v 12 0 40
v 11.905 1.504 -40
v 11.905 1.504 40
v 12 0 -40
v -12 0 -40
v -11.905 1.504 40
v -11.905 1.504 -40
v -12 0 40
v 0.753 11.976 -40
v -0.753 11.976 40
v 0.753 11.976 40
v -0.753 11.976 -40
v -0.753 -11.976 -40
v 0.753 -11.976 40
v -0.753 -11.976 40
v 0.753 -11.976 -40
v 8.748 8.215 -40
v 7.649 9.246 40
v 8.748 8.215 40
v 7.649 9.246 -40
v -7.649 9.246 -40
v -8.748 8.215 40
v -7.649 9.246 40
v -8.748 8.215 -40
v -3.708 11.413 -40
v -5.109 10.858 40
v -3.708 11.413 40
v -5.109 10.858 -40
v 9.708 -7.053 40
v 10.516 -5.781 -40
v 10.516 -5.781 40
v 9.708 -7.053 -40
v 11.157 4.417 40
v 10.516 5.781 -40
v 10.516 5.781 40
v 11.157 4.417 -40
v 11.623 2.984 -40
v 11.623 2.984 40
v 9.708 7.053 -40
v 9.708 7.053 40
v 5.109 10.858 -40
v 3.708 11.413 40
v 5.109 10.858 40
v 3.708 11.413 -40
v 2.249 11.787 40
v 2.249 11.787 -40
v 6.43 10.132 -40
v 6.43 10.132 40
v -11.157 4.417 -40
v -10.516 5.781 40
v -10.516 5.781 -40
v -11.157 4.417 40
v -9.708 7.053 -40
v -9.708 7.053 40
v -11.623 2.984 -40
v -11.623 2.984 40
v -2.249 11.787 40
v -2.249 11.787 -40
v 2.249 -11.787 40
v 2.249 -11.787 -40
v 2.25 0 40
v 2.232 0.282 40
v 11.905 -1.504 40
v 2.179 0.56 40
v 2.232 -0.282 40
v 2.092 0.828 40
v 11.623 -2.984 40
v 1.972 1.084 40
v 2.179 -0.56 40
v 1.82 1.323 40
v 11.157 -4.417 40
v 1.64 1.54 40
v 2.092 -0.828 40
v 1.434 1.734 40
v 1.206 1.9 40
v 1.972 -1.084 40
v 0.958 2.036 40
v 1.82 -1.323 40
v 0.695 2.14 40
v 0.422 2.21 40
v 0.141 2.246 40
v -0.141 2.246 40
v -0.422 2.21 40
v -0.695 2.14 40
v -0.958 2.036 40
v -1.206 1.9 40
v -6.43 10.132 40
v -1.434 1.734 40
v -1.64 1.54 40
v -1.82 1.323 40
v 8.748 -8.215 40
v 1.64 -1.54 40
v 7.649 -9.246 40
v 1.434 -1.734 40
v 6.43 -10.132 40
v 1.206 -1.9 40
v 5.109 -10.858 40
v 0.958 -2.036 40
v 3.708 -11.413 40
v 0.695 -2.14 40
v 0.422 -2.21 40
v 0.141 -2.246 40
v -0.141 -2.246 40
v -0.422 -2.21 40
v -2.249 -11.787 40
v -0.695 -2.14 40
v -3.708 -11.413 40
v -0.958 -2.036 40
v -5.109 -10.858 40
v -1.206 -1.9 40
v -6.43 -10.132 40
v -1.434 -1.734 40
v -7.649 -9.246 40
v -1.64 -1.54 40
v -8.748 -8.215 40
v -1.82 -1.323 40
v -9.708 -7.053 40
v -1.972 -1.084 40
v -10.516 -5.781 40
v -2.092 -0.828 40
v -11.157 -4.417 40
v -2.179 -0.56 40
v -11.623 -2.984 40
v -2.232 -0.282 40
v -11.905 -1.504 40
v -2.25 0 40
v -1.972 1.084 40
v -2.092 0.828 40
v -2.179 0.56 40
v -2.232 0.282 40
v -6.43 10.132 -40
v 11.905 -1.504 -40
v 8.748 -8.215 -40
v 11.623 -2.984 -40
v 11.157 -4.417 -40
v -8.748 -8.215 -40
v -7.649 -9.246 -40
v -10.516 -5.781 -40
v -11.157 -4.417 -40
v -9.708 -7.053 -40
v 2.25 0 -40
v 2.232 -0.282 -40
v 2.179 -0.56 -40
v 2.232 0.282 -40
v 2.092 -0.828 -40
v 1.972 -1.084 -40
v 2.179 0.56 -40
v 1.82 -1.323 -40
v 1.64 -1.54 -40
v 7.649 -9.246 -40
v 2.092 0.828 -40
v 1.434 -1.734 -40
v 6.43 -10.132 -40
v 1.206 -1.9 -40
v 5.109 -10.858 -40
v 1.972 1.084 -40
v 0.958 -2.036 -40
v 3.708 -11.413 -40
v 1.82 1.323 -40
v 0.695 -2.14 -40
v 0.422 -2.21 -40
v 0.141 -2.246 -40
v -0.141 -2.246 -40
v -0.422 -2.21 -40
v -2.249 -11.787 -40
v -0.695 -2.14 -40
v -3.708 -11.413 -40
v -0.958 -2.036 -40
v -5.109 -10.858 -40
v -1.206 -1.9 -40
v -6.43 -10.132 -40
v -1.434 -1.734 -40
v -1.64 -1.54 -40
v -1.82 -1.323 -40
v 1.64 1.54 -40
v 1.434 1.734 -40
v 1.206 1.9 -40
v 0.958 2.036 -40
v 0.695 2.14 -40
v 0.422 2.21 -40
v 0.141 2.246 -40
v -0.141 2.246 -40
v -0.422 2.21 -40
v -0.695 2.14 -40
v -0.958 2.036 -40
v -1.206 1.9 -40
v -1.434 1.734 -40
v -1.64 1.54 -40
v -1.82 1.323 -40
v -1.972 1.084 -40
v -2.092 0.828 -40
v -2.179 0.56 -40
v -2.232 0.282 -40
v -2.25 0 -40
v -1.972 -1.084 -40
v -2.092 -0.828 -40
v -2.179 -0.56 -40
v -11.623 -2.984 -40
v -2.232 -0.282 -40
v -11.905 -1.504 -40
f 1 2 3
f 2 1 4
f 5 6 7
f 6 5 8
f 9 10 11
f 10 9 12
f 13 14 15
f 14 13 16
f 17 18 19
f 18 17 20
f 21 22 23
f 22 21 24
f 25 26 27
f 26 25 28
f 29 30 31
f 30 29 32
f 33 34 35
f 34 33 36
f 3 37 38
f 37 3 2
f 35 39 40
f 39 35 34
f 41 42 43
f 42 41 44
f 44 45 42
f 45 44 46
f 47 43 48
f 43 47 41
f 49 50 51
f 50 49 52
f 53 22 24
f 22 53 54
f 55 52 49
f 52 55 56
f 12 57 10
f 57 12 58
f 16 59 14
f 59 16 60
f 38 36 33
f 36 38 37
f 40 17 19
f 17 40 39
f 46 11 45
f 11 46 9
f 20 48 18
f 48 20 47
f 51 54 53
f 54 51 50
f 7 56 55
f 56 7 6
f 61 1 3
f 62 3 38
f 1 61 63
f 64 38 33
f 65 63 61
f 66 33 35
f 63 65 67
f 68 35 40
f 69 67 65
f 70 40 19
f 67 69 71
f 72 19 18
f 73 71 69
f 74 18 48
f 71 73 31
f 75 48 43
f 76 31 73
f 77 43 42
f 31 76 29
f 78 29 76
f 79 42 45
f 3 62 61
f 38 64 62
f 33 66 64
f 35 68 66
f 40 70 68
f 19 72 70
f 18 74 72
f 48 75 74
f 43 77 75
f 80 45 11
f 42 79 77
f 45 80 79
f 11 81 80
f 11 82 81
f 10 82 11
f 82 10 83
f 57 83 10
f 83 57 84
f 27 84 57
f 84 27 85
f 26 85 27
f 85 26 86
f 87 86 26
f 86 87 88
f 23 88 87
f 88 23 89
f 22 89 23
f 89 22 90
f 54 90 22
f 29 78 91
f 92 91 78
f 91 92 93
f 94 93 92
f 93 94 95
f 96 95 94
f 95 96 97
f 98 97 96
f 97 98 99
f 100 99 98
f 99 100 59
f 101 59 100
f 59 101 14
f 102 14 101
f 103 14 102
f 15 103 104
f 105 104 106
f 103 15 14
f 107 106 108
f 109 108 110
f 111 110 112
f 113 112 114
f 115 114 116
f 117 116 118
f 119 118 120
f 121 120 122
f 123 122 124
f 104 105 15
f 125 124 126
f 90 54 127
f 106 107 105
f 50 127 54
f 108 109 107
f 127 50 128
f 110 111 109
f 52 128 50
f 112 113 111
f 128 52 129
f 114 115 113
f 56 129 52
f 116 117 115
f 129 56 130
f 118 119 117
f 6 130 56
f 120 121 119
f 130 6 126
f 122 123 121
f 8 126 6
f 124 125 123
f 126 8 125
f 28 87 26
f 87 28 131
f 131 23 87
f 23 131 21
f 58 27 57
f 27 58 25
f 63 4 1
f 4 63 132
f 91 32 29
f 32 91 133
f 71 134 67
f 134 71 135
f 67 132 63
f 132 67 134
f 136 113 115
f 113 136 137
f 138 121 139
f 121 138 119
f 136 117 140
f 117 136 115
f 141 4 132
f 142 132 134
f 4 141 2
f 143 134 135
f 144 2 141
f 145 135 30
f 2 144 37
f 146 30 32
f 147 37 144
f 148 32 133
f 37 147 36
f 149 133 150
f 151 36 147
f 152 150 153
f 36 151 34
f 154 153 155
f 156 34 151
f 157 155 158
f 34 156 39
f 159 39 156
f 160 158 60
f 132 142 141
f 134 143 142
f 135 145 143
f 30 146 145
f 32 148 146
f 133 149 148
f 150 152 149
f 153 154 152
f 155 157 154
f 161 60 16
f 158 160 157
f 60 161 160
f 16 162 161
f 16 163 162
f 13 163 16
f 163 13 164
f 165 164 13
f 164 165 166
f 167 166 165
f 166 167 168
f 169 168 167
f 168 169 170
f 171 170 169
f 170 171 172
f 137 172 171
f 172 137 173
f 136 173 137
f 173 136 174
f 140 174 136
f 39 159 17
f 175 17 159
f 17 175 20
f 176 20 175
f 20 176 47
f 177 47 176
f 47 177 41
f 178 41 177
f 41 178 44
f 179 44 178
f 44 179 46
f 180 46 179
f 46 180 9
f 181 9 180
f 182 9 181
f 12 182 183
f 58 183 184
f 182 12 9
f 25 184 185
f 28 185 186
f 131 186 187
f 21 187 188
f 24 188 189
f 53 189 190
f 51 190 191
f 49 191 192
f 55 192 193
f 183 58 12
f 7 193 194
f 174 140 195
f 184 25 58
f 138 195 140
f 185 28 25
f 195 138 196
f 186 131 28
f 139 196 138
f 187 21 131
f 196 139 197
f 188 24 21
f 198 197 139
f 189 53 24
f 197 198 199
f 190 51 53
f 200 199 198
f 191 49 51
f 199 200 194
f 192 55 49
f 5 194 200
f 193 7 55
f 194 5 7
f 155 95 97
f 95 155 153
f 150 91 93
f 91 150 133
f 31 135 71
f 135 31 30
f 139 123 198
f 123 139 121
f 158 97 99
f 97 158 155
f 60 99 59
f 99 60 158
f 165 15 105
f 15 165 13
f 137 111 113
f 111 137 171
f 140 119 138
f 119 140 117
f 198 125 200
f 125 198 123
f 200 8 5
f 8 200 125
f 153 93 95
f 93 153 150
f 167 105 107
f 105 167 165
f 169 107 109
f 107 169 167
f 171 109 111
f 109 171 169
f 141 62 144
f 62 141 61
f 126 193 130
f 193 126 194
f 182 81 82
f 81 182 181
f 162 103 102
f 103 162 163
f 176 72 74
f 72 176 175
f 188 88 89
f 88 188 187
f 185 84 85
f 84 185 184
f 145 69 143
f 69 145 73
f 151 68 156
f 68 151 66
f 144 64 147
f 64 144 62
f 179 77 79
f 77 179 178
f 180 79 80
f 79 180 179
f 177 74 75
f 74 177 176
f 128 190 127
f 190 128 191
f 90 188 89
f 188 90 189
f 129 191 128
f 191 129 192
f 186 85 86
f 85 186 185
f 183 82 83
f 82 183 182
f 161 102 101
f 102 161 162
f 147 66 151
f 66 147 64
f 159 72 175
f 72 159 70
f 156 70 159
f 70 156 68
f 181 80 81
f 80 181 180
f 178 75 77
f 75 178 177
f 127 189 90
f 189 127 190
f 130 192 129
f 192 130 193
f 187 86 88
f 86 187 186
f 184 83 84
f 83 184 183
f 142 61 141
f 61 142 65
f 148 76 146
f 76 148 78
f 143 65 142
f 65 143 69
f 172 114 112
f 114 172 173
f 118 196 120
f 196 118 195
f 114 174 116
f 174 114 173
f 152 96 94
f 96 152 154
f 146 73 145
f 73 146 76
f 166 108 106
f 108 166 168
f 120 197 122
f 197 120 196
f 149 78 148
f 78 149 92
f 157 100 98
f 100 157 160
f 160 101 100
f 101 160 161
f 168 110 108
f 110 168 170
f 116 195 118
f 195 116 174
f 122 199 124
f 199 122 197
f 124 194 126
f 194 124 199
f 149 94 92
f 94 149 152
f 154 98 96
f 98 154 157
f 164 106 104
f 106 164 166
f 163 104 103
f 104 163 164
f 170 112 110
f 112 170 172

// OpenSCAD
$fn = 50;


difference() {
	union() {
		translate(v = [0, 0, -40.0000000000]) {
			cylinder(h = 80, r = 12.0000000000);
		}
	}
	union() {
		translate(v = [0, 0, -100.0000000000]) {
			cylinder(h = 200, r = 2.2500000000);
		}
	}
}
